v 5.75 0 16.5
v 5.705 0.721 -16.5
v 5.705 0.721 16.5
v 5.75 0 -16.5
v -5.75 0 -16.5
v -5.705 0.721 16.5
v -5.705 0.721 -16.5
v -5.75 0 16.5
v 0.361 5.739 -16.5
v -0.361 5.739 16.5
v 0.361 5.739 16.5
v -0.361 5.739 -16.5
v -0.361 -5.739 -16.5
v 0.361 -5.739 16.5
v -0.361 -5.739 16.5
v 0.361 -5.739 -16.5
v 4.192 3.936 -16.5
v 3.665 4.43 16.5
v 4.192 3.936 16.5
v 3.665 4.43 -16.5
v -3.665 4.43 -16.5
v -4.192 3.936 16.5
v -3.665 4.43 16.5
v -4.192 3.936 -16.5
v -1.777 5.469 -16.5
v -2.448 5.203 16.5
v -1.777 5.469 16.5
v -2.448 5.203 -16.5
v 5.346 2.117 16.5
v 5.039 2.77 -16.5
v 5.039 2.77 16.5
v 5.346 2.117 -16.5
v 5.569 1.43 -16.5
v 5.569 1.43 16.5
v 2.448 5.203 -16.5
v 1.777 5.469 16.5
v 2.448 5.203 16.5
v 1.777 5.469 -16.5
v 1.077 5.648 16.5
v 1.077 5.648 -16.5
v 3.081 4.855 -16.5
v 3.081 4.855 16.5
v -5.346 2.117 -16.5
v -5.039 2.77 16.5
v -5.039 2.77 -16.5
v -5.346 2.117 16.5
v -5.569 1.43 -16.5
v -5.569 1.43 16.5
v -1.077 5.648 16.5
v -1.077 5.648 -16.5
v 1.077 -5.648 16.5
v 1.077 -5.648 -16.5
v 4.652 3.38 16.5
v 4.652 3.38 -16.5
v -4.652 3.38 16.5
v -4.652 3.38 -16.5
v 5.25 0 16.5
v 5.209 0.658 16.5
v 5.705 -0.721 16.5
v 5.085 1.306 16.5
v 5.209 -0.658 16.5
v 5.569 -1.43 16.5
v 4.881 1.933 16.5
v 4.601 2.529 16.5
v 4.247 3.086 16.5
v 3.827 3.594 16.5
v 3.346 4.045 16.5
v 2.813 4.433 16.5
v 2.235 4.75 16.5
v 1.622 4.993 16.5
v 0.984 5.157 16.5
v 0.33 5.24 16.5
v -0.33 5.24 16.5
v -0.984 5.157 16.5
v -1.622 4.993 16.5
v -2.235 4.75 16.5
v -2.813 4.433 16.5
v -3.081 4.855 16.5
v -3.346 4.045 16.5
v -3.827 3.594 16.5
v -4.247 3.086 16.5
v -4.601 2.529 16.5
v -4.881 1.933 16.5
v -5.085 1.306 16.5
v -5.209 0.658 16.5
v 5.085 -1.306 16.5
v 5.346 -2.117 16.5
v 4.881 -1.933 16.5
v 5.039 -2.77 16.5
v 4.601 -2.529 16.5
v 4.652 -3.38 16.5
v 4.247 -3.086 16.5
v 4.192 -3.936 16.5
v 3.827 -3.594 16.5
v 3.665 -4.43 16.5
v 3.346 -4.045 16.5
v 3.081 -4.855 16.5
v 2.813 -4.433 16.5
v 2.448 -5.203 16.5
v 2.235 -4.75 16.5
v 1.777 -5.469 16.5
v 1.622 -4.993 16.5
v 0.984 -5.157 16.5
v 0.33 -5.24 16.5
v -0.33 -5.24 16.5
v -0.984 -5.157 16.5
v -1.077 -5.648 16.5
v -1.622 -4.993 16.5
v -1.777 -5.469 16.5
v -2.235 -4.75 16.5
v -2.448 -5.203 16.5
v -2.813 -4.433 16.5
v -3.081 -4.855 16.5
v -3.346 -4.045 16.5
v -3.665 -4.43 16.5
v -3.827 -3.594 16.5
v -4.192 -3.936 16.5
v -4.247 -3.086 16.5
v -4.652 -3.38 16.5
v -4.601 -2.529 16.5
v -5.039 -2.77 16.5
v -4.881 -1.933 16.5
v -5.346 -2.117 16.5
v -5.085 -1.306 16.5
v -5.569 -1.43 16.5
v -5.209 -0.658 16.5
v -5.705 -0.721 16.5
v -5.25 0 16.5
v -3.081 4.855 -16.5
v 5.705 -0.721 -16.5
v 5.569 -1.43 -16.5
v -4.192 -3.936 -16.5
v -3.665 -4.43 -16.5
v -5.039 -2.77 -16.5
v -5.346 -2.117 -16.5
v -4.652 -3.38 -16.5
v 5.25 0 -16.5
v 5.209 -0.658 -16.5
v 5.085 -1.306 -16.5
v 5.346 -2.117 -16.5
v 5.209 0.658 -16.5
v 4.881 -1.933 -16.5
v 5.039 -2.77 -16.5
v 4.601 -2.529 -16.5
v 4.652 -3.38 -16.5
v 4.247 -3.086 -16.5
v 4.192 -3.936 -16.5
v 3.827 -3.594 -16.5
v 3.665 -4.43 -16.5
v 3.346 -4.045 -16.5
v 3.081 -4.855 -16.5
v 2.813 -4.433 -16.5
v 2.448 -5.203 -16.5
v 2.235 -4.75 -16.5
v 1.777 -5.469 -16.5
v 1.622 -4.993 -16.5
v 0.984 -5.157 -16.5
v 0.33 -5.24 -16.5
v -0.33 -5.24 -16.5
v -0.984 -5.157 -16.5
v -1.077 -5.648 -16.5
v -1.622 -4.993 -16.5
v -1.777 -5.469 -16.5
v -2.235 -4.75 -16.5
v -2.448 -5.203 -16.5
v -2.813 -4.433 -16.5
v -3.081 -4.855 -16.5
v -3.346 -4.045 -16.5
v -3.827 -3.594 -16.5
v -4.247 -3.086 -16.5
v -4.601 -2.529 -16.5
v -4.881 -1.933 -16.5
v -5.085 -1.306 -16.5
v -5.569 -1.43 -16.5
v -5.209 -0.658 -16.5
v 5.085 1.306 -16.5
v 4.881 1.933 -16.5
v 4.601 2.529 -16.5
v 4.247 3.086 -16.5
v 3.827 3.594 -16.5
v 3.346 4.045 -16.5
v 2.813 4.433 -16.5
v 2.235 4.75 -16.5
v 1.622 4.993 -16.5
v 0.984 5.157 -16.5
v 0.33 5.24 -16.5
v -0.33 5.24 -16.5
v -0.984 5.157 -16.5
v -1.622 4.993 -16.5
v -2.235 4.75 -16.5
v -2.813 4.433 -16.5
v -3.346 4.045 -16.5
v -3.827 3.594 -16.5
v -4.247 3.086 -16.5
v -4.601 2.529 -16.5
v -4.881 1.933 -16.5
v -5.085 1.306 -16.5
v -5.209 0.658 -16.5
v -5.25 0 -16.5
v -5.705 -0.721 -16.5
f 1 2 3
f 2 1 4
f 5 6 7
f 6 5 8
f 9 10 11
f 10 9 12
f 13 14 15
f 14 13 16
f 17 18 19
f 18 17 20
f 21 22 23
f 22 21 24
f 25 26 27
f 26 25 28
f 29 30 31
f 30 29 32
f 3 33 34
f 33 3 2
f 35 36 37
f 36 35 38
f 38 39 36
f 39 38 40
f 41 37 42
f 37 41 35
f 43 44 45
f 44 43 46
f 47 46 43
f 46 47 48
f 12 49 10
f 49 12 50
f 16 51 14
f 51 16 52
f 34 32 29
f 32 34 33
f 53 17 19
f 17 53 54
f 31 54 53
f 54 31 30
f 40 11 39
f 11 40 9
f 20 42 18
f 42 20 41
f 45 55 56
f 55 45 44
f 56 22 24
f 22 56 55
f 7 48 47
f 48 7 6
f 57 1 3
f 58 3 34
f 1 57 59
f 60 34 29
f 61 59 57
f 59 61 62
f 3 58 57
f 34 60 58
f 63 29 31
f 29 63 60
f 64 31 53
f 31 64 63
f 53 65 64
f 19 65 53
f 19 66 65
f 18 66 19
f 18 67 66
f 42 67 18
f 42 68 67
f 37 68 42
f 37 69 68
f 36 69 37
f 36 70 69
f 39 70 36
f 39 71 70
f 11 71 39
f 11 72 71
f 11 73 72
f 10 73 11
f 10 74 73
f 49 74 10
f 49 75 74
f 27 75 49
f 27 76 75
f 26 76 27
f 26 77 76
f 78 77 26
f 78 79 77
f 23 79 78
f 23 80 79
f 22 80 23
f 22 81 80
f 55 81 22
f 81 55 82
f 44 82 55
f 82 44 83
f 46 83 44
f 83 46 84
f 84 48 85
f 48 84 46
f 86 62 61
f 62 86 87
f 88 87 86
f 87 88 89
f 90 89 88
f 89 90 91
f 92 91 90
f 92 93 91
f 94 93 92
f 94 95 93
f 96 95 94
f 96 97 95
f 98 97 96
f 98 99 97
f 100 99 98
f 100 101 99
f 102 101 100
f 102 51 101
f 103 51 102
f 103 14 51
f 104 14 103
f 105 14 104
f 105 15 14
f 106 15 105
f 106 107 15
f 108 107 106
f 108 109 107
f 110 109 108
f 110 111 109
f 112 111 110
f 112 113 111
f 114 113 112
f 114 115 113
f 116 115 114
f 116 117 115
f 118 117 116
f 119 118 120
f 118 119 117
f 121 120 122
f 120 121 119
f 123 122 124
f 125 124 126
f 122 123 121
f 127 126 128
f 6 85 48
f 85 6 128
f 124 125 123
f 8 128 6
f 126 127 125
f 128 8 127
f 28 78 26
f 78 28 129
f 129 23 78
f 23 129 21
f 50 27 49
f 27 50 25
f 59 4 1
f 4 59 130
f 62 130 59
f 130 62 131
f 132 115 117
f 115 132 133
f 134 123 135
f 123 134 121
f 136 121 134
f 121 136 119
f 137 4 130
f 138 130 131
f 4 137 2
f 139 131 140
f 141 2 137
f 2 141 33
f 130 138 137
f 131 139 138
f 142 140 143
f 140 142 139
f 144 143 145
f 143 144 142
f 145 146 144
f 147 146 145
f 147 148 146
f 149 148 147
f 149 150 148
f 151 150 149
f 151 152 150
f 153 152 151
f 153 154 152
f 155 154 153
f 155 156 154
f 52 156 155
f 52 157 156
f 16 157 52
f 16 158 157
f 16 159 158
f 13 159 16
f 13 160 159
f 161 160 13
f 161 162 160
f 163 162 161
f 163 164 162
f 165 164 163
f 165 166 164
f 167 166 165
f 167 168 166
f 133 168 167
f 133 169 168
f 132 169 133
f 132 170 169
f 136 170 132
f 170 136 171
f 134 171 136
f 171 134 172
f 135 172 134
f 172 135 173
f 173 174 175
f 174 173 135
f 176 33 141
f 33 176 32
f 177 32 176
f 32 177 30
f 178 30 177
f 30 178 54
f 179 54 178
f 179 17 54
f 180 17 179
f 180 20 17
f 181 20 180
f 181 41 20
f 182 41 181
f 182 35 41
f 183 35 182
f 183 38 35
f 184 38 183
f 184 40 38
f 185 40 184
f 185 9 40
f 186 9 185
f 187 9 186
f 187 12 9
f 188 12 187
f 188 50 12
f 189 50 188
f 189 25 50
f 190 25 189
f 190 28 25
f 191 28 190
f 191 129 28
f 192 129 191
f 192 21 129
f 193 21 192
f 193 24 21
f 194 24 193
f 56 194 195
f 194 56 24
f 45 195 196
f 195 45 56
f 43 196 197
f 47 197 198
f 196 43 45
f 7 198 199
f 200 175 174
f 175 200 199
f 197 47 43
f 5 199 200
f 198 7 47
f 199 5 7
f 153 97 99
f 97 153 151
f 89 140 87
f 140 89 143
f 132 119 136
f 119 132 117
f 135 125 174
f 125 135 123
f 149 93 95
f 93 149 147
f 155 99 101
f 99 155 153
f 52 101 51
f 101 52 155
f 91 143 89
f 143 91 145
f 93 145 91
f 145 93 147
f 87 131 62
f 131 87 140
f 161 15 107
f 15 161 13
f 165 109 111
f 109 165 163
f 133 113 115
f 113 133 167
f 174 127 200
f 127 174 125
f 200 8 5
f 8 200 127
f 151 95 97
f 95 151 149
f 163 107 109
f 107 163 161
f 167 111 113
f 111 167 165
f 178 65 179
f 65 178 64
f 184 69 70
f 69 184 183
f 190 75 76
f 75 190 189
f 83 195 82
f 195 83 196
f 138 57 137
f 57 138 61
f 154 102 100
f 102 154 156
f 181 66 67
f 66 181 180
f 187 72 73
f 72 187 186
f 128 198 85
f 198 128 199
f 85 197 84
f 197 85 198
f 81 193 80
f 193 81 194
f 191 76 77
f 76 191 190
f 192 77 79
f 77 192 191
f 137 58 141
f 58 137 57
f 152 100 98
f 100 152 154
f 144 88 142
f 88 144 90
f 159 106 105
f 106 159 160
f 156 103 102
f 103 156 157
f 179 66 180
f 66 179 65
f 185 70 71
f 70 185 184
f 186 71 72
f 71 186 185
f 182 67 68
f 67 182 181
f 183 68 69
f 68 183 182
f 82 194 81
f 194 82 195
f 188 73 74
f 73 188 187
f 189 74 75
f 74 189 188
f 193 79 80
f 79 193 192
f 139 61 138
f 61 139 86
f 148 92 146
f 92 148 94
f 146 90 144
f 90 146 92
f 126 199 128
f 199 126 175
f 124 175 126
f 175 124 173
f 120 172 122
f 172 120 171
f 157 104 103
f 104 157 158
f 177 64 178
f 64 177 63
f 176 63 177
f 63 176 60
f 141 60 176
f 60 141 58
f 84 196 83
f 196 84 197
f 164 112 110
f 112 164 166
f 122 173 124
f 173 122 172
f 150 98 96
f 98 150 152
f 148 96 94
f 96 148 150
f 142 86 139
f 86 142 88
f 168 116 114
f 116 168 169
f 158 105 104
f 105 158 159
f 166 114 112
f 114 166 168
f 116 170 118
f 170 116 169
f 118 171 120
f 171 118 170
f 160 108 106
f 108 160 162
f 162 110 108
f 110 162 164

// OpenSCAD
$fn = 50;


difference() {
	union() {
		translate(v = [0, 0, -16.5000000000]) {
			cylinder(h = 33, r = 5.7500000000);
		}
	}
	union() {
		translate(v = [0, 0, -100.0000000000]) {
			cylinder(h = 200, r = 5.2500000000);
		}
	}
}
